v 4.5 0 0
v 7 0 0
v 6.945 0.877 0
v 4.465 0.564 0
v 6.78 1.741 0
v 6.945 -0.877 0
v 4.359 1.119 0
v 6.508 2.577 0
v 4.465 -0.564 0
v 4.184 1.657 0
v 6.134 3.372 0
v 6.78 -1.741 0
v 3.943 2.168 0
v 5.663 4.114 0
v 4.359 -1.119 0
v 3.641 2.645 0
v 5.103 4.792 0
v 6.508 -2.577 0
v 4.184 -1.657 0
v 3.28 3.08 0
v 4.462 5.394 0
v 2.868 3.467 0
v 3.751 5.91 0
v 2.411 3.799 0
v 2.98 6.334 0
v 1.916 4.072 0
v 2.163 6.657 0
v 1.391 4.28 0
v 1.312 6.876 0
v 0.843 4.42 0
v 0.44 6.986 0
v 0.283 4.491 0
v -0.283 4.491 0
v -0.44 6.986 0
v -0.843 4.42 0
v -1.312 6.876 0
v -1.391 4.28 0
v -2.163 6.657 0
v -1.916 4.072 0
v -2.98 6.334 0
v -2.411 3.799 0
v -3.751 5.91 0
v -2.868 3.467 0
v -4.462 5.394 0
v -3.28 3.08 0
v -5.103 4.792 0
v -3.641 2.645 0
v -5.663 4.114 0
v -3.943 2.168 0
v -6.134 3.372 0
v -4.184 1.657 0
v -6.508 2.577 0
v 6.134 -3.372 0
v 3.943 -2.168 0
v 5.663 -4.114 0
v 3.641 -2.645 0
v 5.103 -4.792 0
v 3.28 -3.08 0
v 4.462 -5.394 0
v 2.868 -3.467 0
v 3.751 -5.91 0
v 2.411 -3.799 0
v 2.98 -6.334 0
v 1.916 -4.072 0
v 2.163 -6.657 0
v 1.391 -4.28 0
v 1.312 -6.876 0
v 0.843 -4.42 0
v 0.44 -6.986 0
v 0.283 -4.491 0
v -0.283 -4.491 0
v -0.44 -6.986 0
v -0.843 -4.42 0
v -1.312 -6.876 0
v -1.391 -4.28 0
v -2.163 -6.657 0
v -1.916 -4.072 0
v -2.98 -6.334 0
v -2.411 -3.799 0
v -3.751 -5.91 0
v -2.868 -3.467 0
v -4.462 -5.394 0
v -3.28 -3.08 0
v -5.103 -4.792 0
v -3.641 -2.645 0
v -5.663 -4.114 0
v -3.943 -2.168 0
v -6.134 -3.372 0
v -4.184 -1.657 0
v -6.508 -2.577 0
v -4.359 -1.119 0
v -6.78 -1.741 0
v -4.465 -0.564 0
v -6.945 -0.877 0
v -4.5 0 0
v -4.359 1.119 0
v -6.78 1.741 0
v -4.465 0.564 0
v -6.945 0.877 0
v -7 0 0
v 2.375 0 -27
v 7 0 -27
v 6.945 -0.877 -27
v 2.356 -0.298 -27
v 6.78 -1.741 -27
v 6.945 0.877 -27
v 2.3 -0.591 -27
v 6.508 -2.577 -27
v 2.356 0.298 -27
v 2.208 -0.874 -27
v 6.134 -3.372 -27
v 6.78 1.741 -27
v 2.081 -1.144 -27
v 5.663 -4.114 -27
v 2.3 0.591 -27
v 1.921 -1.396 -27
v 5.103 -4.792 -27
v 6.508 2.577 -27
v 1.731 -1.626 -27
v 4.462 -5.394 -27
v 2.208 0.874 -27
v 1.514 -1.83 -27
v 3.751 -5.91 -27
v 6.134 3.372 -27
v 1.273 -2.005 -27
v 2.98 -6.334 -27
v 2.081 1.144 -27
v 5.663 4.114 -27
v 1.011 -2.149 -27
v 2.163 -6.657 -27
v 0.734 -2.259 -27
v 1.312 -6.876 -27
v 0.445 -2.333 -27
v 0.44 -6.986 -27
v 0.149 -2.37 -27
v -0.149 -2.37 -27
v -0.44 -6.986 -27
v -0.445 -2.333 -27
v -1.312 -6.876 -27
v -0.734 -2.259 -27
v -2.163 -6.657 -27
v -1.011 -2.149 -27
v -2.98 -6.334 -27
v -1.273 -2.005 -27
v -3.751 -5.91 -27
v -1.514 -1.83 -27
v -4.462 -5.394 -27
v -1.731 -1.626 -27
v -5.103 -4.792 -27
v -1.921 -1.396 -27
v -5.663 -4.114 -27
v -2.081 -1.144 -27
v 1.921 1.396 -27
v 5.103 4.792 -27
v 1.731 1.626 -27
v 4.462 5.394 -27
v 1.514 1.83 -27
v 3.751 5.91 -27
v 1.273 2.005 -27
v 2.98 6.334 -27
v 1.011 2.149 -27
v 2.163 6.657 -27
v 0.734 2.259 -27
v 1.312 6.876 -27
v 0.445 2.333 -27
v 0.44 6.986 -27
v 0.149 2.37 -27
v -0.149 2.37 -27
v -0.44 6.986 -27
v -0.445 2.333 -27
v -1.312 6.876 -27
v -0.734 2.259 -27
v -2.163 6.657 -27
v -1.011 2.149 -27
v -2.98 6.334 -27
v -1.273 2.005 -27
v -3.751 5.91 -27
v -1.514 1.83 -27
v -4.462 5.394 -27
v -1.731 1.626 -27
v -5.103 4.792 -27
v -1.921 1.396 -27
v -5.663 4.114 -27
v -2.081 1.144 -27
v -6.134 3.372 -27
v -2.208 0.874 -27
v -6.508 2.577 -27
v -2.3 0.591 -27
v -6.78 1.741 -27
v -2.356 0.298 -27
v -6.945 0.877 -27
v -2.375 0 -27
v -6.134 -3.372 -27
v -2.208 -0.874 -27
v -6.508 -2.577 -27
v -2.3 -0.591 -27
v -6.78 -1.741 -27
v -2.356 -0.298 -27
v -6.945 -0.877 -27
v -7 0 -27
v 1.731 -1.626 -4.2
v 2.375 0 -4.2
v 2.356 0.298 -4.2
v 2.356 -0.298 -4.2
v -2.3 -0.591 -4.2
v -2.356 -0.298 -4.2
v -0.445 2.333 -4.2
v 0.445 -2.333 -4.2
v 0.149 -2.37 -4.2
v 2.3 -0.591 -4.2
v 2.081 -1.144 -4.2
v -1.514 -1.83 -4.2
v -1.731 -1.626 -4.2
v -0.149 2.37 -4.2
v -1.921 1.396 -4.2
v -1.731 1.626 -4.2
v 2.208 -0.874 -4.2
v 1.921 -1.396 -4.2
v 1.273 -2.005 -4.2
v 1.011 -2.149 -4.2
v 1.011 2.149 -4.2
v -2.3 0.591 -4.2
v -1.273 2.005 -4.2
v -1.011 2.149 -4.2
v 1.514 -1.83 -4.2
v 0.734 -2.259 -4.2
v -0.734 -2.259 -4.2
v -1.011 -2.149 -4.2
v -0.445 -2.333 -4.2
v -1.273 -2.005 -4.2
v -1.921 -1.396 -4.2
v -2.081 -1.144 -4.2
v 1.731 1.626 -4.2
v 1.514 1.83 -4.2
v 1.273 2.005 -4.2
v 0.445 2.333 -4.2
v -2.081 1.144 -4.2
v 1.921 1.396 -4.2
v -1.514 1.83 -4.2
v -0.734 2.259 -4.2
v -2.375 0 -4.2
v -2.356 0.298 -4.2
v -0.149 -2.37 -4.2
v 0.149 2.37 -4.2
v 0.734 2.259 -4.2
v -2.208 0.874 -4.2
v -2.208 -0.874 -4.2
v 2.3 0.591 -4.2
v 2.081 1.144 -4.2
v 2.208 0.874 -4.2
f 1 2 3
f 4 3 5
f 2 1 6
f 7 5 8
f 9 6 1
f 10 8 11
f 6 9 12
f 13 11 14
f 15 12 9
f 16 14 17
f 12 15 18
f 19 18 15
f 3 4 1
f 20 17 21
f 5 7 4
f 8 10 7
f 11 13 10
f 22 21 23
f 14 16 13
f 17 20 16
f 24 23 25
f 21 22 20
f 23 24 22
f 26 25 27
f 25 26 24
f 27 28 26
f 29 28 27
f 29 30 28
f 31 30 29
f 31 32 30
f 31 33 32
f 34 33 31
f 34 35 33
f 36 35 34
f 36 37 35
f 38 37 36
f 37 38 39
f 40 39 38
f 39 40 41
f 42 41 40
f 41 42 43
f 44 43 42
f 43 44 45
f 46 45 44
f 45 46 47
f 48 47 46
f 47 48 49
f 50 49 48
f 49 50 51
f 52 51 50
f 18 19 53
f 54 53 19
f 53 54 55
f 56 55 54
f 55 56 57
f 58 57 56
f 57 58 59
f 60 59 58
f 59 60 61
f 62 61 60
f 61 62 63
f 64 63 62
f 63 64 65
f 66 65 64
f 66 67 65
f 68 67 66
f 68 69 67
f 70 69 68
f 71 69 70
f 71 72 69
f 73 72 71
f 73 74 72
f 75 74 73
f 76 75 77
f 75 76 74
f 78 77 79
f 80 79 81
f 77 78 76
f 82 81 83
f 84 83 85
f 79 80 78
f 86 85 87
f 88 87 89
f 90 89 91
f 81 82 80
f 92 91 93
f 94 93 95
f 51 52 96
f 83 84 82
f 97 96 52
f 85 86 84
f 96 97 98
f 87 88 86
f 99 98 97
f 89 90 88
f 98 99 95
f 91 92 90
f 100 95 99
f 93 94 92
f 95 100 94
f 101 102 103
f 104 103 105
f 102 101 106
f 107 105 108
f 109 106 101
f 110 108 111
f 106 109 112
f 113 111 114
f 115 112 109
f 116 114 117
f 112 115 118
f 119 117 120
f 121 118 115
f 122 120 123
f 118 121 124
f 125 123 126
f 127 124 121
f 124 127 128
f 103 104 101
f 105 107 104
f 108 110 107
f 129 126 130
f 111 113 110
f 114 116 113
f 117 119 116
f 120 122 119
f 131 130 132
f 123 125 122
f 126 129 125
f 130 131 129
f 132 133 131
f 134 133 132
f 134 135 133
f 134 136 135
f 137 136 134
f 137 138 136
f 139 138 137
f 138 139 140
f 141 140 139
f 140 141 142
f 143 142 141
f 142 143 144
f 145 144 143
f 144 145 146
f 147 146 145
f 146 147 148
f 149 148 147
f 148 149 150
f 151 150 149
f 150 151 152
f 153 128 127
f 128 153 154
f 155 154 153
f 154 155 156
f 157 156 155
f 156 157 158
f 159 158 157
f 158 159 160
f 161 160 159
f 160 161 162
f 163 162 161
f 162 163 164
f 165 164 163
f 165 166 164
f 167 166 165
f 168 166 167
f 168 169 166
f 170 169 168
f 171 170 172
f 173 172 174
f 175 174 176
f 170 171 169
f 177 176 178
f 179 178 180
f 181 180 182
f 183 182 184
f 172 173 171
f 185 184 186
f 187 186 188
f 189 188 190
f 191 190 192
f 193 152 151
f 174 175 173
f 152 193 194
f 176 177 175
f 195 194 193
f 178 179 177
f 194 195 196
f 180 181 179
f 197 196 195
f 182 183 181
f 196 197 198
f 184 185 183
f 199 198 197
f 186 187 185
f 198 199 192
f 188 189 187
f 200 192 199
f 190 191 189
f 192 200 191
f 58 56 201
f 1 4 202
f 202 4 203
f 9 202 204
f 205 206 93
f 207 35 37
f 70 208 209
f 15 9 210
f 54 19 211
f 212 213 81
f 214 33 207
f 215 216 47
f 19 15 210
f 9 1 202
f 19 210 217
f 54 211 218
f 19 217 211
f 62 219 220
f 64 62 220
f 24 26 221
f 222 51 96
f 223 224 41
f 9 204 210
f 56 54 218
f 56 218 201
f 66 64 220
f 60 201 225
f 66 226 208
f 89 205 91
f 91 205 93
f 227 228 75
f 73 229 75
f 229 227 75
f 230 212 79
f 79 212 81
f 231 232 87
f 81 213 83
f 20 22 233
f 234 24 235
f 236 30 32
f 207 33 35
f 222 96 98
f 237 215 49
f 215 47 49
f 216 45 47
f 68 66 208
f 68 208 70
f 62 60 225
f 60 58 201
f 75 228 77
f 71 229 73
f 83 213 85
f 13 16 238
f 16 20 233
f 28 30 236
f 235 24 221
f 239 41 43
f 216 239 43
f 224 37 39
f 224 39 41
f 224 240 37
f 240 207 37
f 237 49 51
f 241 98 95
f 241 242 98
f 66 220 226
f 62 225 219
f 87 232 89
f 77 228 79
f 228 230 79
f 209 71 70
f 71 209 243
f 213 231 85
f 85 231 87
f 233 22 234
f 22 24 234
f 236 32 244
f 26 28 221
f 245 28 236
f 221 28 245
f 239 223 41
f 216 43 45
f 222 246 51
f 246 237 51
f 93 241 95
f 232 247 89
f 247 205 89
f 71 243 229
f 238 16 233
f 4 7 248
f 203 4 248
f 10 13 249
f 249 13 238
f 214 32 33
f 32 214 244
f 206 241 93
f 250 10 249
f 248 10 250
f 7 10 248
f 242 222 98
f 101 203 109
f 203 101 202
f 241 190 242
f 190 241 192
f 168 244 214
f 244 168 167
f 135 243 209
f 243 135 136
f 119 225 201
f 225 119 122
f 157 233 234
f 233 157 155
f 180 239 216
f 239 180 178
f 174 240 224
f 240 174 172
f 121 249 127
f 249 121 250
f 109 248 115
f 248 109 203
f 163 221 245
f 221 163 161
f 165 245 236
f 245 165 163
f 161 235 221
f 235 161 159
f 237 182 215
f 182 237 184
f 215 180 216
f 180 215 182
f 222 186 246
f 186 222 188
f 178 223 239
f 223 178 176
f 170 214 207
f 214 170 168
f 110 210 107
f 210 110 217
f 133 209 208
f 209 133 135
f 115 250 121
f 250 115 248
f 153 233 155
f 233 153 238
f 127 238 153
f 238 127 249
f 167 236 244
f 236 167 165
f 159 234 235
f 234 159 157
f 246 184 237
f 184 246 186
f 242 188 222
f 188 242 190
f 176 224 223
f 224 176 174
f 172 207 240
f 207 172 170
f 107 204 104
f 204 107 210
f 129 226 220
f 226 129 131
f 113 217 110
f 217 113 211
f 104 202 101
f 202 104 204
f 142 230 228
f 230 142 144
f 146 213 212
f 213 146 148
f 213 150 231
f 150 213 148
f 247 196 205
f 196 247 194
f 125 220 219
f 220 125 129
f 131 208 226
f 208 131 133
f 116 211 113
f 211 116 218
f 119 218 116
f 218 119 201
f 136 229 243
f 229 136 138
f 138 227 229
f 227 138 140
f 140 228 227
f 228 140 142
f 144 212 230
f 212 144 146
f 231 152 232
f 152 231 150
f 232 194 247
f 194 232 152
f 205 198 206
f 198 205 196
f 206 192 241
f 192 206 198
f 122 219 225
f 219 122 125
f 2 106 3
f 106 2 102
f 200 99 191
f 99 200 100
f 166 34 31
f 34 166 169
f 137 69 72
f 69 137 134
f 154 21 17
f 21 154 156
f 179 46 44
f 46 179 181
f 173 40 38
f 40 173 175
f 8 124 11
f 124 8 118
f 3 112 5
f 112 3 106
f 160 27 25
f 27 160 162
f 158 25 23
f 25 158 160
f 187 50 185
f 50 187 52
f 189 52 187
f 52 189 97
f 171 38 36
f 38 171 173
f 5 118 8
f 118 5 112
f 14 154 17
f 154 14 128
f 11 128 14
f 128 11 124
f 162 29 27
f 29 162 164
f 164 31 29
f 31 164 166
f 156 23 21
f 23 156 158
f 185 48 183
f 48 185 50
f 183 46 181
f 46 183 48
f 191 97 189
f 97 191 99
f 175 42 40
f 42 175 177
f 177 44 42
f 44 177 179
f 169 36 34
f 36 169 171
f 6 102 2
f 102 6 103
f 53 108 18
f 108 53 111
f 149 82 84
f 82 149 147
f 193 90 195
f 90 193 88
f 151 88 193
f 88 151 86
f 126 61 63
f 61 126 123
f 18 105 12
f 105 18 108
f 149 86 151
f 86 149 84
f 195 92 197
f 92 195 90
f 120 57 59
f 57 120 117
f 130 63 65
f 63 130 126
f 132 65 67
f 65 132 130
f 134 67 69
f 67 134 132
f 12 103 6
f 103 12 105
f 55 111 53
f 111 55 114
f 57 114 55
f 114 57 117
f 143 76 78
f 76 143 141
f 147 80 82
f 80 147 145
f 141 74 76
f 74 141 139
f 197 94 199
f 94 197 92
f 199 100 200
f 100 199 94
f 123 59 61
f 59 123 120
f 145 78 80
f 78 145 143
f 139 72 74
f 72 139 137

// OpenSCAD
$fn = 50;


difference() {
	union() {
		translate(v = [0, 0, -27.0000000000]) {
			cylinder(h = 27, r = 7.0000000000);
		}
		cylinder(h = 0, r = 17.0000000000);
	}
	union() {
		translate(v = [0, 0, 0]) {
			rotate(a = [0, 0, 0]) {
				difference() {
					union() {
						#translate(v = [0, 0, -27.0000000000]) {
							cylinder(h = 27, r = 2.2500000000);
						}
						#translate(v = [0, 0, -4.2000000000]) {
							cylinder(h = 4.2000000000, r = 7.0000000000, r1 = 2.3750000000, r2 = 4.5000000000);
						}
						#translate(v = [0, 0, -27.0000000000]) {
							cylinder(h = 27, r = 2.3750000000);
						}
						#translate(v = [0, 0, -27.0000000000]) {
							cylinder(h = 27, r = 2.2500000000);
						}
					}
					union();
				}
			}
		}
	}
}
